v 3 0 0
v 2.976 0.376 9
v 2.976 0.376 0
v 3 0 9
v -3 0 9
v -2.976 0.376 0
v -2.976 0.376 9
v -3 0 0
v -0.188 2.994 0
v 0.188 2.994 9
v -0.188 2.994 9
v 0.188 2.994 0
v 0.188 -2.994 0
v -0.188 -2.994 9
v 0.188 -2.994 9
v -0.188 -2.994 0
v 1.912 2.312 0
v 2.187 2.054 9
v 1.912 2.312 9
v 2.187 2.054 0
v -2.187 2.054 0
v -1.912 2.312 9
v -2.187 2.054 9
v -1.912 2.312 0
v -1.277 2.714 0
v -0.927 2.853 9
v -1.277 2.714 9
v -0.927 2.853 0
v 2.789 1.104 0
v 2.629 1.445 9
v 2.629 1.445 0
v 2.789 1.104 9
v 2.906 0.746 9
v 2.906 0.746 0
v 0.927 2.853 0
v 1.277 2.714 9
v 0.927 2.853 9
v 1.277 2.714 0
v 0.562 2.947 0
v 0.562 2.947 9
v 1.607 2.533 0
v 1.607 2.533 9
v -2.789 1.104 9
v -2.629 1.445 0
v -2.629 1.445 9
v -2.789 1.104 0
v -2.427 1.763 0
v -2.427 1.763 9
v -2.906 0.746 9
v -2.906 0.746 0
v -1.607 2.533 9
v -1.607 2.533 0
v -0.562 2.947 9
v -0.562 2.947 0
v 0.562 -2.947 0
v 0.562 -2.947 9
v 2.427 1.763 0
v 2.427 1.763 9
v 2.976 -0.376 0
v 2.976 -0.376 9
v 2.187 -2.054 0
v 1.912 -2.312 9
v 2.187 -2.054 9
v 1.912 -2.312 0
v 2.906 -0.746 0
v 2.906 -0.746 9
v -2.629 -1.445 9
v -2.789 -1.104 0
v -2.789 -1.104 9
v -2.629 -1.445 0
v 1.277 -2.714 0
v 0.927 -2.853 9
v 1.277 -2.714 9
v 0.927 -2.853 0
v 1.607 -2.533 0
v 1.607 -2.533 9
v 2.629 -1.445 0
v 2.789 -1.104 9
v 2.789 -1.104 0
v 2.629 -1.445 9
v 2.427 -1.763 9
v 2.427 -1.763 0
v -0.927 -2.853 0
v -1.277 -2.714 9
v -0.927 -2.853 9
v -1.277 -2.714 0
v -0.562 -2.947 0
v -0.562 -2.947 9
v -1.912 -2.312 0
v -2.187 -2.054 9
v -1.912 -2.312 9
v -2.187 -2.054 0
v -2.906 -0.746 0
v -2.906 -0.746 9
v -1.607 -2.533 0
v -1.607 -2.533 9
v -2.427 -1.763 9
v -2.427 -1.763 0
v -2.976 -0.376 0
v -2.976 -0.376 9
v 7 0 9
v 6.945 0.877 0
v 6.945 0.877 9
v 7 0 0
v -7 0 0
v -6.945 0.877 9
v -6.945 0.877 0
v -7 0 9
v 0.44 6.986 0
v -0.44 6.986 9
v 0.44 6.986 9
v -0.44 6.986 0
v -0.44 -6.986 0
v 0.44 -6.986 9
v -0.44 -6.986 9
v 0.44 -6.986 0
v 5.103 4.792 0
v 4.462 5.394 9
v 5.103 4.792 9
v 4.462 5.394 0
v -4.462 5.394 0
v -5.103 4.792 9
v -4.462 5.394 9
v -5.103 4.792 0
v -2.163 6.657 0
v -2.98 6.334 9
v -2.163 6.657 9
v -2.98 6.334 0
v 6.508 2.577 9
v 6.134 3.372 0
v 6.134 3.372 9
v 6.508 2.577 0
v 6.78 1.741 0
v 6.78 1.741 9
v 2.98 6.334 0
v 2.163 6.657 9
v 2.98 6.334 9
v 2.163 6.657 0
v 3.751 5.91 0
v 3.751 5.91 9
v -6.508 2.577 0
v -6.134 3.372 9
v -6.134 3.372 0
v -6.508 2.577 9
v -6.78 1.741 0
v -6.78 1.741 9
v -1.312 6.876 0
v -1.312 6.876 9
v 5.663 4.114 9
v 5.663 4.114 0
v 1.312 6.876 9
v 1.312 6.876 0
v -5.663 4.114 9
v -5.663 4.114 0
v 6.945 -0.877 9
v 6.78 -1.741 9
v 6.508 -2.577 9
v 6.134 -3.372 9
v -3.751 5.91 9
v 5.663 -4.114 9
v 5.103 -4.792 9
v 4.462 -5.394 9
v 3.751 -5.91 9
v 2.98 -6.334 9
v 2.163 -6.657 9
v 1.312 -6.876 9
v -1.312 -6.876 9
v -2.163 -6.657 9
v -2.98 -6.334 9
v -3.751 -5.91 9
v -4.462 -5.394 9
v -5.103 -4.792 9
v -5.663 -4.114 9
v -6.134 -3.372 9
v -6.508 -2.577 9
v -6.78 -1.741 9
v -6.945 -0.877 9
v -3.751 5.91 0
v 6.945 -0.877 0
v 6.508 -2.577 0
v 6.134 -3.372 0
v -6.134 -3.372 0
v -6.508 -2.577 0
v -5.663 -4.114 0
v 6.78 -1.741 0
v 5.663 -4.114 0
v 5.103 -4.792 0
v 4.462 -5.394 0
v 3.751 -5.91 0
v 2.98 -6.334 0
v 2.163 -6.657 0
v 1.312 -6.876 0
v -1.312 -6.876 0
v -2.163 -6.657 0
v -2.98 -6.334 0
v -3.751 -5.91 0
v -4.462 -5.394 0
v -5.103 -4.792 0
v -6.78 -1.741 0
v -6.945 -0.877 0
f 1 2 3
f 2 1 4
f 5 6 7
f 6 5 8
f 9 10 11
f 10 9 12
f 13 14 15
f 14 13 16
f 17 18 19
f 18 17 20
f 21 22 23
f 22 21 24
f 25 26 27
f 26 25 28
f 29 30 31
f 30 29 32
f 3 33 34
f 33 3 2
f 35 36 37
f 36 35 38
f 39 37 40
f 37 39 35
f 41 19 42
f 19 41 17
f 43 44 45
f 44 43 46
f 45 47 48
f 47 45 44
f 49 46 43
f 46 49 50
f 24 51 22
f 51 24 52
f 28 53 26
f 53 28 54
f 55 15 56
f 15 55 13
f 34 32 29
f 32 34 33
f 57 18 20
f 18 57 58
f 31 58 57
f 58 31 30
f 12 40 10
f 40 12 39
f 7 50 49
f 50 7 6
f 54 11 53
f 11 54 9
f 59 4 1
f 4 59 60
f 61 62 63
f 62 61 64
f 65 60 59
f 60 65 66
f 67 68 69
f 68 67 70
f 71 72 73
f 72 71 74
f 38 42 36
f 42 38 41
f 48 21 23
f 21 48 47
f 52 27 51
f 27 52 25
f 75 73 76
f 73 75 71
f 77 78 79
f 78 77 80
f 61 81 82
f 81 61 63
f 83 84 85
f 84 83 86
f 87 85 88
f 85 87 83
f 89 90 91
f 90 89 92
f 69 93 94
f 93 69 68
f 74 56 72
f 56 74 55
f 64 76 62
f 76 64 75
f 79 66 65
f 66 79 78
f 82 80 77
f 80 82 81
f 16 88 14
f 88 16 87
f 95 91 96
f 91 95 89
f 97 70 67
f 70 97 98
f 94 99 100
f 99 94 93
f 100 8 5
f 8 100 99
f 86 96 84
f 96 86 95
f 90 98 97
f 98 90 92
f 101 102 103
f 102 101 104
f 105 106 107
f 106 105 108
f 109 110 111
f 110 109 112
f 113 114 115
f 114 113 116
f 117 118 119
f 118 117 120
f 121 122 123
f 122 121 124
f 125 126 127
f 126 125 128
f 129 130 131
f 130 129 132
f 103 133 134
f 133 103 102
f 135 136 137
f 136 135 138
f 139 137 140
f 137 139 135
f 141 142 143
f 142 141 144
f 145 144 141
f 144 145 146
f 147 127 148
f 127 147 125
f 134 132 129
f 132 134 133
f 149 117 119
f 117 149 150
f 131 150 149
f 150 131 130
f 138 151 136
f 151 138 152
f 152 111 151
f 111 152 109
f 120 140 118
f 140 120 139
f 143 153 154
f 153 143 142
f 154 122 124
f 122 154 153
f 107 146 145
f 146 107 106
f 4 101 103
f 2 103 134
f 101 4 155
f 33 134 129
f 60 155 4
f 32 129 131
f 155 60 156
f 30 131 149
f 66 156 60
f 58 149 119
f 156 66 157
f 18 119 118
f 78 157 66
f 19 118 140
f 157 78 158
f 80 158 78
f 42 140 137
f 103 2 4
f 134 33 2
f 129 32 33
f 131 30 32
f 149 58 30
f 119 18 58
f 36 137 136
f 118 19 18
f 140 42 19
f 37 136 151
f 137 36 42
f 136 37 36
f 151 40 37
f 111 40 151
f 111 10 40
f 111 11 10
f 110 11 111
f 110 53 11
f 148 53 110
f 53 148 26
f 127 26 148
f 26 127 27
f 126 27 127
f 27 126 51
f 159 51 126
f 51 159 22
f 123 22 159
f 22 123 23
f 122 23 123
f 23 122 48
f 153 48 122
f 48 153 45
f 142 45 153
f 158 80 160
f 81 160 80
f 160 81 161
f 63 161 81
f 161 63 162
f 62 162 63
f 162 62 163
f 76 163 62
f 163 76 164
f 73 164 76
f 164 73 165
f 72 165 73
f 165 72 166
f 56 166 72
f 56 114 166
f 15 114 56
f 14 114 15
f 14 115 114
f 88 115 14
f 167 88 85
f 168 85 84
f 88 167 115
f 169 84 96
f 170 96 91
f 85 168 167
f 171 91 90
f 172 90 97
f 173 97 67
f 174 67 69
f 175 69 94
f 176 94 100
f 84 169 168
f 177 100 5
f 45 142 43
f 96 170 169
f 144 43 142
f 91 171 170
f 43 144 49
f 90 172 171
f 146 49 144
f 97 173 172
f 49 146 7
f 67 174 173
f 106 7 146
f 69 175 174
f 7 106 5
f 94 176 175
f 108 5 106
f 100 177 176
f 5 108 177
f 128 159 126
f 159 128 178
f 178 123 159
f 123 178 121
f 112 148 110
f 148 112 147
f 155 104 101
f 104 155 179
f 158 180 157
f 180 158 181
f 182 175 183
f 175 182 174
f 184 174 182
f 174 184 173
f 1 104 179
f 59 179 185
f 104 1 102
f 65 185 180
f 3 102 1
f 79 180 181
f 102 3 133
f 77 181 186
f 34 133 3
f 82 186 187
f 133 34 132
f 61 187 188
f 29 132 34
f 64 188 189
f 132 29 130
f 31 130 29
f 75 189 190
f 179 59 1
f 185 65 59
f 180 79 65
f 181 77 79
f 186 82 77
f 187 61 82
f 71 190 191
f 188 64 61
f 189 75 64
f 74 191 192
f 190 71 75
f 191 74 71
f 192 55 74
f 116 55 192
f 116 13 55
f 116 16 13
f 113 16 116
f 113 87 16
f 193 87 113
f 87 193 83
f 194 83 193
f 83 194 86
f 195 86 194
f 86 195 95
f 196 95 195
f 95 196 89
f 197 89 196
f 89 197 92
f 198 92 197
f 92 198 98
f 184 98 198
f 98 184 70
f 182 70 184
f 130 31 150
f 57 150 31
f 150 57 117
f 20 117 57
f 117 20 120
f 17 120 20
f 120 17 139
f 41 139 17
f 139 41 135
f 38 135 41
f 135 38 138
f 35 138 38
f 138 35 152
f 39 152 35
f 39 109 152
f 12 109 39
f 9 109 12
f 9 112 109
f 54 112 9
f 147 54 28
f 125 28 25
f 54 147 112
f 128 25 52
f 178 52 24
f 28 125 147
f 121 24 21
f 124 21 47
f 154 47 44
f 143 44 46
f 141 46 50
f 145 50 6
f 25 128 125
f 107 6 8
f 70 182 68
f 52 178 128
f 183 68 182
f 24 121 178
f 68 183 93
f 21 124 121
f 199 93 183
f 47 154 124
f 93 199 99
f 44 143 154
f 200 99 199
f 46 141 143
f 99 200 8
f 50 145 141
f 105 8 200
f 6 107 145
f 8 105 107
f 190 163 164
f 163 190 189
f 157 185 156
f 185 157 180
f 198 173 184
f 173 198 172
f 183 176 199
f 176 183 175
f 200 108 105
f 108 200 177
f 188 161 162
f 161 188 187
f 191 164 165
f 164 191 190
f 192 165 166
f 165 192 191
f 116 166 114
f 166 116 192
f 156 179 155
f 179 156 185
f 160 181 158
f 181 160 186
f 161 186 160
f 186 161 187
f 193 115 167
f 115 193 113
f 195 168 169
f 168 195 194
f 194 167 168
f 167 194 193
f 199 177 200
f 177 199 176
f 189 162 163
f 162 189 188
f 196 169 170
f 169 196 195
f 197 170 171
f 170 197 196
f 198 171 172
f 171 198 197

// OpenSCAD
$fn = 50;


difference() {
	union() {
		*color(alpha = 1.0000000000, c = "gray") {
			translate(v = [0, 7, 0]) {
				linear_extrude(height = 1) {
					text(font = "Arial:style=Bold", halign = "center", size = 4.5000000000, text = "COMMENT plate main", valign = "center");
				}
			}
		}
		*color(alpha = 1.0000000000, c = "gray") {
			translate(v = [0, 14, 0]) {
				linear_extrude(height = 1) {
					text(font = "Arial:style=Bold", halign = "center", size = 4.5000000000, text = "COMMENT description oobb_plate_shape_p_type_9_depth_1_width_1_height_9_thickness_true_both_holes", valign = "center");
				}
			}
		}
		cylinder(h = 9, r = 7.0000000000);
	}
	union() {
		*color(alpha = 1.0000000000, c = "gray") {
			translate(v = [0, 7, 0]) {
				linear_extrude(height = 1) {
					text(font = "Arial:style=Bold", halign = "center", size = 4.5000000000, text = "COMMENT holes main", valign = "center");
				}
			}
		}
		*color(alpha = 1.0000000000, c = "gray") {
			translate(v = [0, 14, 0]) {
				linear_extrude(height = 1) {
					text(font = "Arial:style=Bold", halign = "center", size = 4.5000000000, text = "COMMENT description oobb_holes_shape_n_type_1_width_1_height_9_thickness_true_both_holes", valign = "center");
				}
			}
		}
		translate(v = [0, 0, -50]) {
			cylinder(h = 100, r = 3.0000000000);
		}
		translate(v = [0, 0, -50]) {
			cylinder(h = 100, r = 1.5000000000);
		}
	}
}
